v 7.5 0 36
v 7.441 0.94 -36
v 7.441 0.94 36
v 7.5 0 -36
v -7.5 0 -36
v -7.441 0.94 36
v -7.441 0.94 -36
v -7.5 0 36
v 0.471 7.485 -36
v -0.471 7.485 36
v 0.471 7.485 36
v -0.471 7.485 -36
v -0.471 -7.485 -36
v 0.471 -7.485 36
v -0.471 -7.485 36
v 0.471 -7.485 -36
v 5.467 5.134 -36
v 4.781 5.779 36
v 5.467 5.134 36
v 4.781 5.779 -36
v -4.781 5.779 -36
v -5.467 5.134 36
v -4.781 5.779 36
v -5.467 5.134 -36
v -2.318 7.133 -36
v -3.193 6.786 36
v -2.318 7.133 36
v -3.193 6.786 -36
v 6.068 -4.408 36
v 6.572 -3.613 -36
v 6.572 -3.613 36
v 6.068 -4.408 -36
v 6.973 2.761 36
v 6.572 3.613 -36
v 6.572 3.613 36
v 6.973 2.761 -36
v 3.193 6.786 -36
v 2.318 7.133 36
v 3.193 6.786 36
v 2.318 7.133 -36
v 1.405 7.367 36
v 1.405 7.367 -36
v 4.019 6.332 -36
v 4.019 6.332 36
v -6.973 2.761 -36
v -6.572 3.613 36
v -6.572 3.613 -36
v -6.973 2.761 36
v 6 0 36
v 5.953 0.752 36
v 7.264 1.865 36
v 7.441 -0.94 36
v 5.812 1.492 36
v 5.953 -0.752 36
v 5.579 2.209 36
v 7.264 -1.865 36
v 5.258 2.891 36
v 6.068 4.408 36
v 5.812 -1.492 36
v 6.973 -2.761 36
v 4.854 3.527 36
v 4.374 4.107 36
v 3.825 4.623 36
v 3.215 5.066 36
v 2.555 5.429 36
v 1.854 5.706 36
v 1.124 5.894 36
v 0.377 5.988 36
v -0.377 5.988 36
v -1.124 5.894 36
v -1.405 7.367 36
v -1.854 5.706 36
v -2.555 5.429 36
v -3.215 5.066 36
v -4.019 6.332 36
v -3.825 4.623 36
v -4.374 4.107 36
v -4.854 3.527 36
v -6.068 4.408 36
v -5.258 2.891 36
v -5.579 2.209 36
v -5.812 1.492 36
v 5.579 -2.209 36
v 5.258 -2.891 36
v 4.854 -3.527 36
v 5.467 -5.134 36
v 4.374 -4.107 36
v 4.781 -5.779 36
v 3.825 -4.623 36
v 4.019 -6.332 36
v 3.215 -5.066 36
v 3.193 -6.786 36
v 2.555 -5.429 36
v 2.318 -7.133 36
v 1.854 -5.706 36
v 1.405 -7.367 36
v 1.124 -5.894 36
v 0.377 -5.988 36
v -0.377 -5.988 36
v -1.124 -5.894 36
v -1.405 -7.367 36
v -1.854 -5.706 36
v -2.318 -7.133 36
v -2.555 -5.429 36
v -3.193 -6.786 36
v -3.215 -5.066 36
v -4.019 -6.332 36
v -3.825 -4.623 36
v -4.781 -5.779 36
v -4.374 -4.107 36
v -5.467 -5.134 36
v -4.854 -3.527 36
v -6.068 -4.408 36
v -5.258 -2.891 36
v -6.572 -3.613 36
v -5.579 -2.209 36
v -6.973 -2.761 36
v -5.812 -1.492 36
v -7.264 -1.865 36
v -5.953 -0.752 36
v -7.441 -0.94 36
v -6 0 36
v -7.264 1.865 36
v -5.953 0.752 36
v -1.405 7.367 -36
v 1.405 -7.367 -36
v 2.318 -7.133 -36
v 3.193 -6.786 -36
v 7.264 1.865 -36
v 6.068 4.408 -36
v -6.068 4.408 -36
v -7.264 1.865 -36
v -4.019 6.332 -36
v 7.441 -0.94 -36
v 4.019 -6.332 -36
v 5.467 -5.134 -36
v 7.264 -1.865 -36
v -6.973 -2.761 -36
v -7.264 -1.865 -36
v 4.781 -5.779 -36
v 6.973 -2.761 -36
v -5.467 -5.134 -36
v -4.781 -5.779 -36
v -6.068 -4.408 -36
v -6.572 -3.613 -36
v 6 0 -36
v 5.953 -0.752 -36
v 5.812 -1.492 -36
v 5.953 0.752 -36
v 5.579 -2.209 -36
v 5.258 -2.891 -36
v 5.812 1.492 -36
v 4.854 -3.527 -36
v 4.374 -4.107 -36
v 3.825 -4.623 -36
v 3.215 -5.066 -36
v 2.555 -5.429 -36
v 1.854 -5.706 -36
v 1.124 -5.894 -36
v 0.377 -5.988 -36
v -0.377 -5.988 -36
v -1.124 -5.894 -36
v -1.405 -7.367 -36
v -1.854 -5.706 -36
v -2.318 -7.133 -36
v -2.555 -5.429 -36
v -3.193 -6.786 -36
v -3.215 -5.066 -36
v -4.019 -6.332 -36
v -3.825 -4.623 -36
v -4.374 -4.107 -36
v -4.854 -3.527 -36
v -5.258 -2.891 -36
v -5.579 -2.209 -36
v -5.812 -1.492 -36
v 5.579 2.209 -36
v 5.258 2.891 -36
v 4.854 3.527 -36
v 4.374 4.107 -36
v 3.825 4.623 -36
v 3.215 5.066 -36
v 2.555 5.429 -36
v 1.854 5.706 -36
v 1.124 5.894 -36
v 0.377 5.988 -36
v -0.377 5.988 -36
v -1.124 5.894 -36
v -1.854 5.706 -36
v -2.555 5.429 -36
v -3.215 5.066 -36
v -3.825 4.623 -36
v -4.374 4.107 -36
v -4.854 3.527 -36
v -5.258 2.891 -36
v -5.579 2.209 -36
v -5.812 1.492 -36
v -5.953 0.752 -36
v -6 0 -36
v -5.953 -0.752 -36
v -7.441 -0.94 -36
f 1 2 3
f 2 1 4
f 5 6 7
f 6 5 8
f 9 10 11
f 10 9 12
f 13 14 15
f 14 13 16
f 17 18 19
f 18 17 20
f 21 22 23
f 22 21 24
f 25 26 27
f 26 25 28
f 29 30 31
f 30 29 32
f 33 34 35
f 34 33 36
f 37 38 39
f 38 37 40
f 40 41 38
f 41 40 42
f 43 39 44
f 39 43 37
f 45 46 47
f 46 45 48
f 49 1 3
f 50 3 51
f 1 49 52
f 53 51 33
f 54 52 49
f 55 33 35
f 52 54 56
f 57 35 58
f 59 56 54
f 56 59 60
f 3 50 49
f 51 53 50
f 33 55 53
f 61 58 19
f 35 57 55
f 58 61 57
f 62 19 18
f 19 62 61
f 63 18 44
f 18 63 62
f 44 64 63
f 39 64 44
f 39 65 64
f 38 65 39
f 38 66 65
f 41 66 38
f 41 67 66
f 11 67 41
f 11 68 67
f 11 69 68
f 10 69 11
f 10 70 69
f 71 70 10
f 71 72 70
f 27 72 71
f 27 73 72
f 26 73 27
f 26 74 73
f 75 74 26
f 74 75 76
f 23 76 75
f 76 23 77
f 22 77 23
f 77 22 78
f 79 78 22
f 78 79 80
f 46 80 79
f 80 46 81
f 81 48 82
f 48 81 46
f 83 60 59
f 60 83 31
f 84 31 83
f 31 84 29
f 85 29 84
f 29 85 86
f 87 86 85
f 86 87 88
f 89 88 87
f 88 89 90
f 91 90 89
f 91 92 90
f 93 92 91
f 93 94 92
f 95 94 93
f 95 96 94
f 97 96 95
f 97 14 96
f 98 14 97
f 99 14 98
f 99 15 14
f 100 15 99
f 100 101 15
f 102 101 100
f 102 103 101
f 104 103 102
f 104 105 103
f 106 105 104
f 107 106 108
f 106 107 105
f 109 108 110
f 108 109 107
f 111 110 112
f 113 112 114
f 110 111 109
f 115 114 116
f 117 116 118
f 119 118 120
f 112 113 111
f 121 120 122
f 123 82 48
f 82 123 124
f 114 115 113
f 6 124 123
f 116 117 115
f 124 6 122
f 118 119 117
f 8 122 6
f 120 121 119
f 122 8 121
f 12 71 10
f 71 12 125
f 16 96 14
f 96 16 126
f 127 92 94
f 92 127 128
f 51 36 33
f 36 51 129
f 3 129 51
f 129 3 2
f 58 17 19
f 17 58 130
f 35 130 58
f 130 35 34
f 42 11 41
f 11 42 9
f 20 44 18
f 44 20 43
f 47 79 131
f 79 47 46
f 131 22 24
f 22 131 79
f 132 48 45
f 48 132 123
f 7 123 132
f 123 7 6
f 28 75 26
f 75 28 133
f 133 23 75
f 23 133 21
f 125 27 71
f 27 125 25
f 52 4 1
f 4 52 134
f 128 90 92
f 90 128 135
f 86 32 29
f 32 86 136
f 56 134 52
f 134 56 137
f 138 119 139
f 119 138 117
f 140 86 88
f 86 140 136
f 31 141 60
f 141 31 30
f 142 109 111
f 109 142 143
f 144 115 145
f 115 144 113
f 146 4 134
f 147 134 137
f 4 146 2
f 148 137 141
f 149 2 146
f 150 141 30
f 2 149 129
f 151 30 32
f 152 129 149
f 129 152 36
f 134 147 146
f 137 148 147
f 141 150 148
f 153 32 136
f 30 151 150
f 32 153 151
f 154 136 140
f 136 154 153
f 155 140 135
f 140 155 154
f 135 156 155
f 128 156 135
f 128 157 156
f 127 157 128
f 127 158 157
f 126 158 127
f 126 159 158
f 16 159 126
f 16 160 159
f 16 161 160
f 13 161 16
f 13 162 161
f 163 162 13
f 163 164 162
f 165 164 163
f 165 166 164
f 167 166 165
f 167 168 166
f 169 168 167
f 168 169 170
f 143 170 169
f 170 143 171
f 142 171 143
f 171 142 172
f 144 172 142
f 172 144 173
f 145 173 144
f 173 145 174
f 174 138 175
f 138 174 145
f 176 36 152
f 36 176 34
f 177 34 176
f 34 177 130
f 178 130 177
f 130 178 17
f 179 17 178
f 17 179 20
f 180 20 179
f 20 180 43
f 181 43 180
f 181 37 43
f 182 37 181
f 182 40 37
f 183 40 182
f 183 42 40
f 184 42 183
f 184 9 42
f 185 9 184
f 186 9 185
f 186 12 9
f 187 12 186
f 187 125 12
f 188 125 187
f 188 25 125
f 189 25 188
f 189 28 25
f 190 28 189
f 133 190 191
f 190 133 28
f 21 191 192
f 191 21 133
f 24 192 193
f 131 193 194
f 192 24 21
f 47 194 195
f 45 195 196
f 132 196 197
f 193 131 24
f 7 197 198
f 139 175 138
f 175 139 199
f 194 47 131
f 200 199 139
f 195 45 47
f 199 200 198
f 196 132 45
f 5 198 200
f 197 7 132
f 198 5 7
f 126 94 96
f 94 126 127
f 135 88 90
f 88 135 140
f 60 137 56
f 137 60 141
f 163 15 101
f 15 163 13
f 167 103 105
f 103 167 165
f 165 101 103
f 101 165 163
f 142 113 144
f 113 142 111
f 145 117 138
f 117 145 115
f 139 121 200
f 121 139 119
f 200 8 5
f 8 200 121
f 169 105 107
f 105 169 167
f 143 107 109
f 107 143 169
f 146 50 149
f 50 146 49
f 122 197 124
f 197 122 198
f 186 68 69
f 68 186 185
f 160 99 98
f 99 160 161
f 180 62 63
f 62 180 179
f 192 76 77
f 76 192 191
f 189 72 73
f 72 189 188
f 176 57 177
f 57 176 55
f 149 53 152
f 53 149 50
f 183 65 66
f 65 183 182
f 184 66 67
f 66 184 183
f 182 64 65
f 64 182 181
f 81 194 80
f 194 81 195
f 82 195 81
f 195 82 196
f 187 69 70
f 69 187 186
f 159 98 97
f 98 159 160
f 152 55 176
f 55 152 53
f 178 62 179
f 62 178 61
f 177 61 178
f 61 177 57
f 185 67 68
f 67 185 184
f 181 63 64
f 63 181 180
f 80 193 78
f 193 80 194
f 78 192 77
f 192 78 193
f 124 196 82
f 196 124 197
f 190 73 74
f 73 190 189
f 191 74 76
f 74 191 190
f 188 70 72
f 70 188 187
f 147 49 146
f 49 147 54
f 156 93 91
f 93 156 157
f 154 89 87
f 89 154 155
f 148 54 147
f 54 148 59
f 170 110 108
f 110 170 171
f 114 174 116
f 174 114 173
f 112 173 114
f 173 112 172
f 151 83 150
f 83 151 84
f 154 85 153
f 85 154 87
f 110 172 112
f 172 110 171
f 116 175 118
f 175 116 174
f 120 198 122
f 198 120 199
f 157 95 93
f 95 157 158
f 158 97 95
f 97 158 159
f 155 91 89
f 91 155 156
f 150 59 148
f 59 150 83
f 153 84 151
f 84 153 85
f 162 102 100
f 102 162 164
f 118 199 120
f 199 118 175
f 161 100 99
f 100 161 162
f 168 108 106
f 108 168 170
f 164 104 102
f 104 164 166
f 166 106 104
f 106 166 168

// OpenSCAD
$fn = 50;


difference() {
	union() {
		translate(v = [0, 0, -36.0000000000]) {
			cylinder(h = 72, r = 7.5000000000);
		}
	}
	union() {
		translate(v = [0, 0, -100.0000000000]) {
			cylinder(h = 200, r = 6);
		}
	}
}
